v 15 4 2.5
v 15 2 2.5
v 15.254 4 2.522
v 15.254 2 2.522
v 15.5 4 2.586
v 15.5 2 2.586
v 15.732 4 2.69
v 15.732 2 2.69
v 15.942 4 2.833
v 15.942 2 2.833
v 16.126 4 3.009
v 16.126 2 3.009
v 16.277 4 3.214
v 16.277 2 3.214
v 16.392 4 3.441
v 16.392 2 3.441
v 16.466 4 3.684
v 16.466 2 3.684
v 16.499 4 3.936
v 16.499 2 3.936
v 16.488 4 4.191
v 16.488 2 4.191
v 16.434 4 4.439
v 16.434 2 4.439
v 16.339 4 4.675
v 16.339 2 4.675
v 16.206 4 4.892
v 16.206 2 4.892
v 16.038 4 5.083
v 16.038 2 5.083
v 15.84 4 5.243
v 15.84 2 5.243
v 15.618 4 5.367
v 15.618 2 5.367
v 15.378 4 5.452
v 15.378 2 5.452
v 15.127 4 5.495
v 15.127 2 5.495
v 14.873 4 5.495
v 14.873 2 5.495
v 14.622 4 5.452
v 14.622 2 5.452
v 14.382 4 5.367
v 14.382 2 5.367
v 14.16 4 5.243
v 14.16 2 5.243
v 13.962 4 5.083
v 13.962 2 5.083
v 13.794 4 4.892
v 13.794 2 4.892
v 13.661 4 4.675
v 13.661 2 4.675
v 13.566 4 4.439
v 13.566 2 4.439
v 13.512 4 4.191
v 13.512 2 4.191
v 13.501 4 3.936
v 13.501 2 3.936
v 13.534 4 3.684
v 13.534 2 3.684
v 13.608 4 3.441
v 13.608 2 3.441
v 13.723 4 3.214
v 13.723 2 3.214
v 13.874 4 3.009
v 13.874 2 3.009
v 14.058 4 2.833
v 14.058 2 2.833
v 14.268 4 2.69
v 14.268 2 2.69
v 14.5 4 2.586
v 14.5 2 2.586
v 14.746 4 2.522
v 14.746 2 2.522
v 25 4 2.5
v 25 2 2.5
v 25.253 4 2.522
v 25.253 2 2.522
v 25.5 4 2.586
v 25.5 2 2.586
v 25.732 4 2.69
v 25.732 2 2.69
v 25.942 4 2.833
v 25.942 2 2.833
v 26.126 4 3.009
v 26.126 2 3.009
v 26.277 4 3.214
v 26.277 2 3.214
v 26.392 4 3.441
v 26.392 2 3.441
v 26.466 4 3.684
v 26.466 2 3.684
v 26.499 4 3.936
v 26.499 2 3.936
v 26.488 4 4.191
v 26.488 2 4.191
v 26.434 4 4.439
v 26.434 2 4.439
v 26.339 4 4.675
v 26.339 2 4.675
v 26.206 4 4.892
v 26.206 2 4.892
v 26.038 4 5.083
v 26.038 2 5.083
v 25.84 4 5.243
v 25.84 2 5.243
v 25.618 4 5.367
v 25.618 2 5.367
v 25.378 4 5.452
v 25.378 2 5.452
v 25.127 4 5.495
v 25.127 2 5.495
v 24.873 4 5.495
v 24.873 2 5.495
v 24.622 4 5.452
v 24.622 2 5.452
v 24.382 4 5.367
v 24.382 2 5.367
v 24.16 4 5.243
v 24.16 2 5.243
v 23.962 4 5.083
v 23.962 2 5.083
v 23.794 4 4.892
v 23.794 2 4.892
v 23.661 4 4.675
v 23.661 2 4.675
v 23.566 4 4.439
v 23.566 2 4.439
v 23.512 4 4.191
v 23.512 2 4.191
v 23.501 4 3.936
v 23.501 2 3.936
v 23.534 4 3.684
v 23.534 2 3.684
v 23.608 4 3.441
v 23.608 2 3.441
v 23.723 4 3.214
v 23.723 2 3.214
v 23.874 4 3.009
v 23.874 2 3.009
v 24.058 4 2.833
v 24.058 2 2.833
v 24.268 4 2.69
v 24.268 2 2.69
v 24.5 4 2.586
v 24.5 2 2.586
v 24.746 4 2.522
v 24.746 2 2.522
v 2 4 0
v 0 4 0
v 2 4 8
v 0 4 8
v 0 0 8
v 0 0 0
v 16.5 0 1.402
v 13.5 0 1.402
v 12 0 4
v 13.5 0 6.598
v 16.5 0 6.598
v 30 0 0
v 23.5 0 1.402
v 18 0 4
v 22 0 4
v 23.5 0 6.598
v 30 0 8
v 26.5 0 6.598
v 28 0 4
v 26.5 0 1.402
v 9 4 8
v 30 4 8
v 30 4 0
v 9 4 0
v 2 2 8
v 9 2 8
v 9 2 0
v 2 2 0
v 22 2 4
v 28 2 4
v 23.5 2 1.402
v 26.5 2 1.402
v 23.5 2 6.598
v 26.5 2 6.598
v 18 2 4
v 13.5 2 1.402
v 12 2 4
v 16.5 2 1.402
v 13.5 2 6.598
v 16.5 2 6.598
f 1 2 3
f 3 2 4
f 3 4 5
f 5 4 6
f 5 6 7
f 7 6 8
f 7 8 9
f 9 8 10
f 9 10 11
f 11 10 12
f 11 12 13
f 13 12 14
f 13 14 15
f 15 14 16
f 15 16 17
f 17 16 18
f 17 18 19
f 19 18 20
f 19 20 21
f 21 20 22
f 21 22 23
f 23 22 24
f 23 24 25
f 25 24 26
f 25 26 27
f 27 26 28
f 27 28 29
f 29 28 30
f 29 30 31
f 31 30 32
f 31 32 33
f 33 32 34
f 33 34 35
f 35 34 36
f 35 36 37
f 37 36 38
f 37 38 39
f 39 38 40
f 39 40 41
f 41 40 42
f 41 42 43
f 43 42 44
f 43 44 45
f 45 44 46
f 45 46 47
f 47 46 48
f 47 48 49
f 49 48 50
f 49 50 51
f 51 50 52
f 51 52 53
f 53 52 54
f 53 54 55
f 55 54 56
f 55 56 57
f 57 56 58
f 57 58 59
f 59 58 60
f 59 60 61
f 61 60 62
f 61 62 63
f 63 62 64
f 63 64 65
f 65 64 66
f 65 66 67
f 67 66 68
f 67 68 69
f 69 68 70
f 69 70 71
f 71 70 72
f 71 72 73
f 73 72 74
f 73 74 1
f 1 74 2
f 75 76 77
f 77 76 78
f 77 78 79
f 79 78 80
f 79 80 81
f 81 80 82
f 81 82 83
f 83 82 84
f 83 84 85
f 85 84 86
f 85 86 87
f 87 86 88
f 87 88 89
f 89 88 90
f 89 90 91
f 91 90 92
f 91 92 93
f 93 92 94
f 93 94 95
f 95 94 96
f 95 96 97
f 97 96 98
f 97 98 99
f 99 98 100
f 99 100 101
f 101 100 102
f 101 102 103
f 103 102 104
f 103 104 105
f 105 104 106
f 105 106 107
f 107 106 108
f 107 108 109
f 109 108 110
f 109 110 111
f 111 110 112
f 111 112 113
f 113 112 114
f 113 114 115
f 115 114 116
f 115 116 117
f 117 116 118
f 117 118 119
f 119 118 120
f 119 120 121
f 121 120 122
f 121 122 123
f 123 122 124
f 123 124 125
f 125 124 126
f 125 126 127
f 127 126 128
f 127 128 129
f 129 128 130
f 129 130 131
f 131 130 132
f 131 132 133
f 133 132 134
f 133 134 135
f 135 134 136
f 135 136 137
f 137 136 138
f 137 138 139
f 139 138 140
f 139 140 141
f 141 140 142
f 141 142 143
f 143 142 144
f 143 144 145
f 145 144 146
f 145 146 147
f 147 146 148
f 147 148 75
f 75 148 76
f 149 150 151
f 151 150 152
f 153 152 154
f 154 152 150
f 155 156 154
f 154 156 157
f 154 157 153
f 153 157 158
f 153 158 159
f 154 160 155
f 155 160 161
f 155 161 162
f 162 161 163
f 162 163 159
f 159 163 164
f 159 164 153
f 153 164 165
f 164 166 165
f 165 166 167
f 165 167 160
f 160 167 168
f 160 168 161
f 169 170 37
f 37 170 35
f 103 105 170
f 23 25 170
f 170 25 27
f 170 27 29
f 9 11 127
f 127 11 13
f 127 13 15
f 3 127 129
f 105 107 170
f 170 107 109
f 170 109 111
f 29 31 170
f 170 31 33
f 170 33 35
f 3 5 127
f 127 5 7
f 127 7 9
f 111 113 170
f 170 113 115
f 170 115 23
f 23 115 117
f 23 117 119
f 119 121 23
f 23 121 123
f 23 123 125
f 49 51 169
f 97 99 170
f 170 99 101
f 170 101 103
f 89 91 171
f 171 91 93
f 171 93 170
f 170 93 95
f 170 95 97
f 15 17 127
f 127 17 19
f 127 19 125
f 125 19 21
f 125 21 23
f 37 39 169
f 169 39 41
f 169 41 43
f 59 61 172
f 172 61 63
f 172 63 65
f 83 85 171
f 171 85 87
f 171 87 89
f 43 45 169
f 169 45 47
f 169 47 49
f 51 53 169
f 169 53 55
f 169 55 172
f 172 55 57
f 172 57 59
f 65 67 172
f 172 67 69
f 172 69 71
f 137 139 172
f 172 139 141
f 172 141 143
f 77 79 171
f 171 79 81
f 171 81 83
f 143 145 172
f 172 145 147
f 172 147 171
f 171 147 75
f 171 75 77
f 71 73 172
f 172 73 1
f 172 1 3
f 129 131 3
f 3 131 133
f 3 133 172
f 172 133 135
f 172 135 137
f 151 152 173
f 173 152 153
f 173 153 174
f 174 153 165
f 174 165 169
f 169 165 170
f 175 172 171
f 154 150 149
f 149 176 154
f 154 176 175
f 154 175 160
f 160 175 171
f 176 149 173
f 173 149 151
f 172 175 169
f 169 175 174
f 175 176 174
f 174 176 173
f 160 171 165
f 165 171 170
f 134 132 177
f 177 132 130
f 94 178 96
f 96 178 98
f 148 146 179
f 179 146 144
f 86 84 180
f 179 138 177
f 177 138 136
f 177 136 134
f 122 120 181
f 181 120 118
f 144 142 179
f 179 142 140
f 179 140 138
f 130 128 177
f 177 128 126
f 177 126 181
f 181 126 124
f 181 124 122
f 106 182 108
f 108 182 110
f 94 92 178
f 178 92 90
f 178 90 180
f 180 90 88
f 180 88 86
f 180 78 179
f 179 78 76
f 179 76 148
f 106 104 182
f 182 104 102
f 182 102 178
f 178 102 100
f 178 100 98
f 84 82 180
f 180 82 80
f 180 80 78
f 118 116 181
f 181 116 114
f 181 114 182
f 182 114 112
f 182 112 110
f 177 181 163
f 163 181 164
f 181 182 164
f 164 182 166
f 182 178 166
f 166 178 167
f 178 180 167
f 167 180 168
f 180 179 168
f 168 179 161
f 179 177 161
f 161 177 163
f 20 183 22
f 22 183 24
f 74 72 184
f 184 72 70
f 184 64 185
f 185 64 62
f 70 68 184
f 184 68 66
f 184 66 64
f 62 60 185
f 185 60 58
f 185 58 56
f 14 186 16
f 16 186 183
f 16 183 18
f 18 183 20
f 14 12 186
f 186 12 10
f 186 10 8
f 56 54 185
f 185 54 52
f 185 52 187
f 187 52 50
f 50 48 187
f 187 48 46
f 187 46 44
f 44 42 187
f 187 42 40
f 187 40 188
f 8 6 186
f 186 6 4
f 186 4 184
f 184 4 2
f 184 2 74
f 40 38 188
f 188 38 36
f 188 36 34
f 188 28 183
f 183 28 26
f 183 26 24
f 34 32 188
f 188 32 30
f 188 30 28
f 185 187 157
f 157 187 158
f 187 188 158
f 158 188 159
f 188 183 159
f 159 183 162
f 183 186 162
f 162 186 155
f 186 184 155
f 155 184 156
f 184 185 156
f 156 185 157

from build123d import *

# Parameters (mm, degrees)
SKETCH1_W           = 20
SKETCH1_H           = 4
BOSS_EXTRUDE1_DEPTH = 8
SKETCH2_W           = 7
SKETCH2_H           = 2
CUT_EXTRUDE1_DEPTH  = 8
SKETCH3_W           = 8
SKETCH3_H           = 4
BOSS_EXTRUDE2_DEPTH = 10
SKETCH4_R           = 1.5
CUT_EXTRUDE2_DEPTH  = 10
CUT_EXTRUDE3_DEPTH  = 2


with BuildPart() as part:
    # Sketch1 → Boss-Extrude1 (new body)
    with BuildSketch(Plane.XY):
        with Locations((10, 2)):
            Rectangle(SKETCH1_W, SKETCH1_H)
    extrude(amount=BOSS_EXTRUDE1_DEPTH)

    # Sketch2 → Cut-Extrude1 (cut)
    with BuildSketch(Plane.XY.offset(8)):
        with Locations((5.5, 3)):
            Rectangle(SKETCH2_W, SKETCH2_H)
    extrude(amount=-CUT_EXTRUDE1_DEPTH, mode=Mode.SUBTRACT)

    # Sketch3 → Boss-Extrude2 (add)
    with BuildSketch(Plane(origin=(20, 0, 0), x_dir=(0, 0, -1), z_dir=(1, 0, 0))):
        with Locations((-4, 2)):
            Rectangle(SKETCH3_W, SKETCH3_H)
    extrude(amount=BOSS_EXTRUDE2_DEPTH)

    # Sketch4 → Cut-Extrude2 (cut)
    with BuildSketch(Plane.XZ):
        with Locations(Location((25, 4, 0), (0, 0, 270))):
            Circle(SKETCH4_R)
        with Locations(Location((15, 4, 0), (0, 0, 270))):
            Circle(SKETCH4_R)
    extrude(amount=-CUT_EXTRUDE2_DEPTH, mode=Mode.SUBTRACT)

    # Sketch5 → Cut-Extrude3 (cut)
    with BuildSketch(Plane.XZ):
        Polygon((22, 4), (23.5, 1.401923789), (26.5, 1.401923789), (28, 4), (26.5, 6.598076211), (23.5, 6.598076211), align=None)
        Polygon((12, 4), (13.5, 1.401923789), (16.5, 1.401923789), (18, 4), (16.5, 6.598076211), (13.5, 6.598076211), align=None)
    extrude(amount=-CUT_EXTRUDE3_DEPTH, mode=Mode.SUBTRACT)


solid = part.part
